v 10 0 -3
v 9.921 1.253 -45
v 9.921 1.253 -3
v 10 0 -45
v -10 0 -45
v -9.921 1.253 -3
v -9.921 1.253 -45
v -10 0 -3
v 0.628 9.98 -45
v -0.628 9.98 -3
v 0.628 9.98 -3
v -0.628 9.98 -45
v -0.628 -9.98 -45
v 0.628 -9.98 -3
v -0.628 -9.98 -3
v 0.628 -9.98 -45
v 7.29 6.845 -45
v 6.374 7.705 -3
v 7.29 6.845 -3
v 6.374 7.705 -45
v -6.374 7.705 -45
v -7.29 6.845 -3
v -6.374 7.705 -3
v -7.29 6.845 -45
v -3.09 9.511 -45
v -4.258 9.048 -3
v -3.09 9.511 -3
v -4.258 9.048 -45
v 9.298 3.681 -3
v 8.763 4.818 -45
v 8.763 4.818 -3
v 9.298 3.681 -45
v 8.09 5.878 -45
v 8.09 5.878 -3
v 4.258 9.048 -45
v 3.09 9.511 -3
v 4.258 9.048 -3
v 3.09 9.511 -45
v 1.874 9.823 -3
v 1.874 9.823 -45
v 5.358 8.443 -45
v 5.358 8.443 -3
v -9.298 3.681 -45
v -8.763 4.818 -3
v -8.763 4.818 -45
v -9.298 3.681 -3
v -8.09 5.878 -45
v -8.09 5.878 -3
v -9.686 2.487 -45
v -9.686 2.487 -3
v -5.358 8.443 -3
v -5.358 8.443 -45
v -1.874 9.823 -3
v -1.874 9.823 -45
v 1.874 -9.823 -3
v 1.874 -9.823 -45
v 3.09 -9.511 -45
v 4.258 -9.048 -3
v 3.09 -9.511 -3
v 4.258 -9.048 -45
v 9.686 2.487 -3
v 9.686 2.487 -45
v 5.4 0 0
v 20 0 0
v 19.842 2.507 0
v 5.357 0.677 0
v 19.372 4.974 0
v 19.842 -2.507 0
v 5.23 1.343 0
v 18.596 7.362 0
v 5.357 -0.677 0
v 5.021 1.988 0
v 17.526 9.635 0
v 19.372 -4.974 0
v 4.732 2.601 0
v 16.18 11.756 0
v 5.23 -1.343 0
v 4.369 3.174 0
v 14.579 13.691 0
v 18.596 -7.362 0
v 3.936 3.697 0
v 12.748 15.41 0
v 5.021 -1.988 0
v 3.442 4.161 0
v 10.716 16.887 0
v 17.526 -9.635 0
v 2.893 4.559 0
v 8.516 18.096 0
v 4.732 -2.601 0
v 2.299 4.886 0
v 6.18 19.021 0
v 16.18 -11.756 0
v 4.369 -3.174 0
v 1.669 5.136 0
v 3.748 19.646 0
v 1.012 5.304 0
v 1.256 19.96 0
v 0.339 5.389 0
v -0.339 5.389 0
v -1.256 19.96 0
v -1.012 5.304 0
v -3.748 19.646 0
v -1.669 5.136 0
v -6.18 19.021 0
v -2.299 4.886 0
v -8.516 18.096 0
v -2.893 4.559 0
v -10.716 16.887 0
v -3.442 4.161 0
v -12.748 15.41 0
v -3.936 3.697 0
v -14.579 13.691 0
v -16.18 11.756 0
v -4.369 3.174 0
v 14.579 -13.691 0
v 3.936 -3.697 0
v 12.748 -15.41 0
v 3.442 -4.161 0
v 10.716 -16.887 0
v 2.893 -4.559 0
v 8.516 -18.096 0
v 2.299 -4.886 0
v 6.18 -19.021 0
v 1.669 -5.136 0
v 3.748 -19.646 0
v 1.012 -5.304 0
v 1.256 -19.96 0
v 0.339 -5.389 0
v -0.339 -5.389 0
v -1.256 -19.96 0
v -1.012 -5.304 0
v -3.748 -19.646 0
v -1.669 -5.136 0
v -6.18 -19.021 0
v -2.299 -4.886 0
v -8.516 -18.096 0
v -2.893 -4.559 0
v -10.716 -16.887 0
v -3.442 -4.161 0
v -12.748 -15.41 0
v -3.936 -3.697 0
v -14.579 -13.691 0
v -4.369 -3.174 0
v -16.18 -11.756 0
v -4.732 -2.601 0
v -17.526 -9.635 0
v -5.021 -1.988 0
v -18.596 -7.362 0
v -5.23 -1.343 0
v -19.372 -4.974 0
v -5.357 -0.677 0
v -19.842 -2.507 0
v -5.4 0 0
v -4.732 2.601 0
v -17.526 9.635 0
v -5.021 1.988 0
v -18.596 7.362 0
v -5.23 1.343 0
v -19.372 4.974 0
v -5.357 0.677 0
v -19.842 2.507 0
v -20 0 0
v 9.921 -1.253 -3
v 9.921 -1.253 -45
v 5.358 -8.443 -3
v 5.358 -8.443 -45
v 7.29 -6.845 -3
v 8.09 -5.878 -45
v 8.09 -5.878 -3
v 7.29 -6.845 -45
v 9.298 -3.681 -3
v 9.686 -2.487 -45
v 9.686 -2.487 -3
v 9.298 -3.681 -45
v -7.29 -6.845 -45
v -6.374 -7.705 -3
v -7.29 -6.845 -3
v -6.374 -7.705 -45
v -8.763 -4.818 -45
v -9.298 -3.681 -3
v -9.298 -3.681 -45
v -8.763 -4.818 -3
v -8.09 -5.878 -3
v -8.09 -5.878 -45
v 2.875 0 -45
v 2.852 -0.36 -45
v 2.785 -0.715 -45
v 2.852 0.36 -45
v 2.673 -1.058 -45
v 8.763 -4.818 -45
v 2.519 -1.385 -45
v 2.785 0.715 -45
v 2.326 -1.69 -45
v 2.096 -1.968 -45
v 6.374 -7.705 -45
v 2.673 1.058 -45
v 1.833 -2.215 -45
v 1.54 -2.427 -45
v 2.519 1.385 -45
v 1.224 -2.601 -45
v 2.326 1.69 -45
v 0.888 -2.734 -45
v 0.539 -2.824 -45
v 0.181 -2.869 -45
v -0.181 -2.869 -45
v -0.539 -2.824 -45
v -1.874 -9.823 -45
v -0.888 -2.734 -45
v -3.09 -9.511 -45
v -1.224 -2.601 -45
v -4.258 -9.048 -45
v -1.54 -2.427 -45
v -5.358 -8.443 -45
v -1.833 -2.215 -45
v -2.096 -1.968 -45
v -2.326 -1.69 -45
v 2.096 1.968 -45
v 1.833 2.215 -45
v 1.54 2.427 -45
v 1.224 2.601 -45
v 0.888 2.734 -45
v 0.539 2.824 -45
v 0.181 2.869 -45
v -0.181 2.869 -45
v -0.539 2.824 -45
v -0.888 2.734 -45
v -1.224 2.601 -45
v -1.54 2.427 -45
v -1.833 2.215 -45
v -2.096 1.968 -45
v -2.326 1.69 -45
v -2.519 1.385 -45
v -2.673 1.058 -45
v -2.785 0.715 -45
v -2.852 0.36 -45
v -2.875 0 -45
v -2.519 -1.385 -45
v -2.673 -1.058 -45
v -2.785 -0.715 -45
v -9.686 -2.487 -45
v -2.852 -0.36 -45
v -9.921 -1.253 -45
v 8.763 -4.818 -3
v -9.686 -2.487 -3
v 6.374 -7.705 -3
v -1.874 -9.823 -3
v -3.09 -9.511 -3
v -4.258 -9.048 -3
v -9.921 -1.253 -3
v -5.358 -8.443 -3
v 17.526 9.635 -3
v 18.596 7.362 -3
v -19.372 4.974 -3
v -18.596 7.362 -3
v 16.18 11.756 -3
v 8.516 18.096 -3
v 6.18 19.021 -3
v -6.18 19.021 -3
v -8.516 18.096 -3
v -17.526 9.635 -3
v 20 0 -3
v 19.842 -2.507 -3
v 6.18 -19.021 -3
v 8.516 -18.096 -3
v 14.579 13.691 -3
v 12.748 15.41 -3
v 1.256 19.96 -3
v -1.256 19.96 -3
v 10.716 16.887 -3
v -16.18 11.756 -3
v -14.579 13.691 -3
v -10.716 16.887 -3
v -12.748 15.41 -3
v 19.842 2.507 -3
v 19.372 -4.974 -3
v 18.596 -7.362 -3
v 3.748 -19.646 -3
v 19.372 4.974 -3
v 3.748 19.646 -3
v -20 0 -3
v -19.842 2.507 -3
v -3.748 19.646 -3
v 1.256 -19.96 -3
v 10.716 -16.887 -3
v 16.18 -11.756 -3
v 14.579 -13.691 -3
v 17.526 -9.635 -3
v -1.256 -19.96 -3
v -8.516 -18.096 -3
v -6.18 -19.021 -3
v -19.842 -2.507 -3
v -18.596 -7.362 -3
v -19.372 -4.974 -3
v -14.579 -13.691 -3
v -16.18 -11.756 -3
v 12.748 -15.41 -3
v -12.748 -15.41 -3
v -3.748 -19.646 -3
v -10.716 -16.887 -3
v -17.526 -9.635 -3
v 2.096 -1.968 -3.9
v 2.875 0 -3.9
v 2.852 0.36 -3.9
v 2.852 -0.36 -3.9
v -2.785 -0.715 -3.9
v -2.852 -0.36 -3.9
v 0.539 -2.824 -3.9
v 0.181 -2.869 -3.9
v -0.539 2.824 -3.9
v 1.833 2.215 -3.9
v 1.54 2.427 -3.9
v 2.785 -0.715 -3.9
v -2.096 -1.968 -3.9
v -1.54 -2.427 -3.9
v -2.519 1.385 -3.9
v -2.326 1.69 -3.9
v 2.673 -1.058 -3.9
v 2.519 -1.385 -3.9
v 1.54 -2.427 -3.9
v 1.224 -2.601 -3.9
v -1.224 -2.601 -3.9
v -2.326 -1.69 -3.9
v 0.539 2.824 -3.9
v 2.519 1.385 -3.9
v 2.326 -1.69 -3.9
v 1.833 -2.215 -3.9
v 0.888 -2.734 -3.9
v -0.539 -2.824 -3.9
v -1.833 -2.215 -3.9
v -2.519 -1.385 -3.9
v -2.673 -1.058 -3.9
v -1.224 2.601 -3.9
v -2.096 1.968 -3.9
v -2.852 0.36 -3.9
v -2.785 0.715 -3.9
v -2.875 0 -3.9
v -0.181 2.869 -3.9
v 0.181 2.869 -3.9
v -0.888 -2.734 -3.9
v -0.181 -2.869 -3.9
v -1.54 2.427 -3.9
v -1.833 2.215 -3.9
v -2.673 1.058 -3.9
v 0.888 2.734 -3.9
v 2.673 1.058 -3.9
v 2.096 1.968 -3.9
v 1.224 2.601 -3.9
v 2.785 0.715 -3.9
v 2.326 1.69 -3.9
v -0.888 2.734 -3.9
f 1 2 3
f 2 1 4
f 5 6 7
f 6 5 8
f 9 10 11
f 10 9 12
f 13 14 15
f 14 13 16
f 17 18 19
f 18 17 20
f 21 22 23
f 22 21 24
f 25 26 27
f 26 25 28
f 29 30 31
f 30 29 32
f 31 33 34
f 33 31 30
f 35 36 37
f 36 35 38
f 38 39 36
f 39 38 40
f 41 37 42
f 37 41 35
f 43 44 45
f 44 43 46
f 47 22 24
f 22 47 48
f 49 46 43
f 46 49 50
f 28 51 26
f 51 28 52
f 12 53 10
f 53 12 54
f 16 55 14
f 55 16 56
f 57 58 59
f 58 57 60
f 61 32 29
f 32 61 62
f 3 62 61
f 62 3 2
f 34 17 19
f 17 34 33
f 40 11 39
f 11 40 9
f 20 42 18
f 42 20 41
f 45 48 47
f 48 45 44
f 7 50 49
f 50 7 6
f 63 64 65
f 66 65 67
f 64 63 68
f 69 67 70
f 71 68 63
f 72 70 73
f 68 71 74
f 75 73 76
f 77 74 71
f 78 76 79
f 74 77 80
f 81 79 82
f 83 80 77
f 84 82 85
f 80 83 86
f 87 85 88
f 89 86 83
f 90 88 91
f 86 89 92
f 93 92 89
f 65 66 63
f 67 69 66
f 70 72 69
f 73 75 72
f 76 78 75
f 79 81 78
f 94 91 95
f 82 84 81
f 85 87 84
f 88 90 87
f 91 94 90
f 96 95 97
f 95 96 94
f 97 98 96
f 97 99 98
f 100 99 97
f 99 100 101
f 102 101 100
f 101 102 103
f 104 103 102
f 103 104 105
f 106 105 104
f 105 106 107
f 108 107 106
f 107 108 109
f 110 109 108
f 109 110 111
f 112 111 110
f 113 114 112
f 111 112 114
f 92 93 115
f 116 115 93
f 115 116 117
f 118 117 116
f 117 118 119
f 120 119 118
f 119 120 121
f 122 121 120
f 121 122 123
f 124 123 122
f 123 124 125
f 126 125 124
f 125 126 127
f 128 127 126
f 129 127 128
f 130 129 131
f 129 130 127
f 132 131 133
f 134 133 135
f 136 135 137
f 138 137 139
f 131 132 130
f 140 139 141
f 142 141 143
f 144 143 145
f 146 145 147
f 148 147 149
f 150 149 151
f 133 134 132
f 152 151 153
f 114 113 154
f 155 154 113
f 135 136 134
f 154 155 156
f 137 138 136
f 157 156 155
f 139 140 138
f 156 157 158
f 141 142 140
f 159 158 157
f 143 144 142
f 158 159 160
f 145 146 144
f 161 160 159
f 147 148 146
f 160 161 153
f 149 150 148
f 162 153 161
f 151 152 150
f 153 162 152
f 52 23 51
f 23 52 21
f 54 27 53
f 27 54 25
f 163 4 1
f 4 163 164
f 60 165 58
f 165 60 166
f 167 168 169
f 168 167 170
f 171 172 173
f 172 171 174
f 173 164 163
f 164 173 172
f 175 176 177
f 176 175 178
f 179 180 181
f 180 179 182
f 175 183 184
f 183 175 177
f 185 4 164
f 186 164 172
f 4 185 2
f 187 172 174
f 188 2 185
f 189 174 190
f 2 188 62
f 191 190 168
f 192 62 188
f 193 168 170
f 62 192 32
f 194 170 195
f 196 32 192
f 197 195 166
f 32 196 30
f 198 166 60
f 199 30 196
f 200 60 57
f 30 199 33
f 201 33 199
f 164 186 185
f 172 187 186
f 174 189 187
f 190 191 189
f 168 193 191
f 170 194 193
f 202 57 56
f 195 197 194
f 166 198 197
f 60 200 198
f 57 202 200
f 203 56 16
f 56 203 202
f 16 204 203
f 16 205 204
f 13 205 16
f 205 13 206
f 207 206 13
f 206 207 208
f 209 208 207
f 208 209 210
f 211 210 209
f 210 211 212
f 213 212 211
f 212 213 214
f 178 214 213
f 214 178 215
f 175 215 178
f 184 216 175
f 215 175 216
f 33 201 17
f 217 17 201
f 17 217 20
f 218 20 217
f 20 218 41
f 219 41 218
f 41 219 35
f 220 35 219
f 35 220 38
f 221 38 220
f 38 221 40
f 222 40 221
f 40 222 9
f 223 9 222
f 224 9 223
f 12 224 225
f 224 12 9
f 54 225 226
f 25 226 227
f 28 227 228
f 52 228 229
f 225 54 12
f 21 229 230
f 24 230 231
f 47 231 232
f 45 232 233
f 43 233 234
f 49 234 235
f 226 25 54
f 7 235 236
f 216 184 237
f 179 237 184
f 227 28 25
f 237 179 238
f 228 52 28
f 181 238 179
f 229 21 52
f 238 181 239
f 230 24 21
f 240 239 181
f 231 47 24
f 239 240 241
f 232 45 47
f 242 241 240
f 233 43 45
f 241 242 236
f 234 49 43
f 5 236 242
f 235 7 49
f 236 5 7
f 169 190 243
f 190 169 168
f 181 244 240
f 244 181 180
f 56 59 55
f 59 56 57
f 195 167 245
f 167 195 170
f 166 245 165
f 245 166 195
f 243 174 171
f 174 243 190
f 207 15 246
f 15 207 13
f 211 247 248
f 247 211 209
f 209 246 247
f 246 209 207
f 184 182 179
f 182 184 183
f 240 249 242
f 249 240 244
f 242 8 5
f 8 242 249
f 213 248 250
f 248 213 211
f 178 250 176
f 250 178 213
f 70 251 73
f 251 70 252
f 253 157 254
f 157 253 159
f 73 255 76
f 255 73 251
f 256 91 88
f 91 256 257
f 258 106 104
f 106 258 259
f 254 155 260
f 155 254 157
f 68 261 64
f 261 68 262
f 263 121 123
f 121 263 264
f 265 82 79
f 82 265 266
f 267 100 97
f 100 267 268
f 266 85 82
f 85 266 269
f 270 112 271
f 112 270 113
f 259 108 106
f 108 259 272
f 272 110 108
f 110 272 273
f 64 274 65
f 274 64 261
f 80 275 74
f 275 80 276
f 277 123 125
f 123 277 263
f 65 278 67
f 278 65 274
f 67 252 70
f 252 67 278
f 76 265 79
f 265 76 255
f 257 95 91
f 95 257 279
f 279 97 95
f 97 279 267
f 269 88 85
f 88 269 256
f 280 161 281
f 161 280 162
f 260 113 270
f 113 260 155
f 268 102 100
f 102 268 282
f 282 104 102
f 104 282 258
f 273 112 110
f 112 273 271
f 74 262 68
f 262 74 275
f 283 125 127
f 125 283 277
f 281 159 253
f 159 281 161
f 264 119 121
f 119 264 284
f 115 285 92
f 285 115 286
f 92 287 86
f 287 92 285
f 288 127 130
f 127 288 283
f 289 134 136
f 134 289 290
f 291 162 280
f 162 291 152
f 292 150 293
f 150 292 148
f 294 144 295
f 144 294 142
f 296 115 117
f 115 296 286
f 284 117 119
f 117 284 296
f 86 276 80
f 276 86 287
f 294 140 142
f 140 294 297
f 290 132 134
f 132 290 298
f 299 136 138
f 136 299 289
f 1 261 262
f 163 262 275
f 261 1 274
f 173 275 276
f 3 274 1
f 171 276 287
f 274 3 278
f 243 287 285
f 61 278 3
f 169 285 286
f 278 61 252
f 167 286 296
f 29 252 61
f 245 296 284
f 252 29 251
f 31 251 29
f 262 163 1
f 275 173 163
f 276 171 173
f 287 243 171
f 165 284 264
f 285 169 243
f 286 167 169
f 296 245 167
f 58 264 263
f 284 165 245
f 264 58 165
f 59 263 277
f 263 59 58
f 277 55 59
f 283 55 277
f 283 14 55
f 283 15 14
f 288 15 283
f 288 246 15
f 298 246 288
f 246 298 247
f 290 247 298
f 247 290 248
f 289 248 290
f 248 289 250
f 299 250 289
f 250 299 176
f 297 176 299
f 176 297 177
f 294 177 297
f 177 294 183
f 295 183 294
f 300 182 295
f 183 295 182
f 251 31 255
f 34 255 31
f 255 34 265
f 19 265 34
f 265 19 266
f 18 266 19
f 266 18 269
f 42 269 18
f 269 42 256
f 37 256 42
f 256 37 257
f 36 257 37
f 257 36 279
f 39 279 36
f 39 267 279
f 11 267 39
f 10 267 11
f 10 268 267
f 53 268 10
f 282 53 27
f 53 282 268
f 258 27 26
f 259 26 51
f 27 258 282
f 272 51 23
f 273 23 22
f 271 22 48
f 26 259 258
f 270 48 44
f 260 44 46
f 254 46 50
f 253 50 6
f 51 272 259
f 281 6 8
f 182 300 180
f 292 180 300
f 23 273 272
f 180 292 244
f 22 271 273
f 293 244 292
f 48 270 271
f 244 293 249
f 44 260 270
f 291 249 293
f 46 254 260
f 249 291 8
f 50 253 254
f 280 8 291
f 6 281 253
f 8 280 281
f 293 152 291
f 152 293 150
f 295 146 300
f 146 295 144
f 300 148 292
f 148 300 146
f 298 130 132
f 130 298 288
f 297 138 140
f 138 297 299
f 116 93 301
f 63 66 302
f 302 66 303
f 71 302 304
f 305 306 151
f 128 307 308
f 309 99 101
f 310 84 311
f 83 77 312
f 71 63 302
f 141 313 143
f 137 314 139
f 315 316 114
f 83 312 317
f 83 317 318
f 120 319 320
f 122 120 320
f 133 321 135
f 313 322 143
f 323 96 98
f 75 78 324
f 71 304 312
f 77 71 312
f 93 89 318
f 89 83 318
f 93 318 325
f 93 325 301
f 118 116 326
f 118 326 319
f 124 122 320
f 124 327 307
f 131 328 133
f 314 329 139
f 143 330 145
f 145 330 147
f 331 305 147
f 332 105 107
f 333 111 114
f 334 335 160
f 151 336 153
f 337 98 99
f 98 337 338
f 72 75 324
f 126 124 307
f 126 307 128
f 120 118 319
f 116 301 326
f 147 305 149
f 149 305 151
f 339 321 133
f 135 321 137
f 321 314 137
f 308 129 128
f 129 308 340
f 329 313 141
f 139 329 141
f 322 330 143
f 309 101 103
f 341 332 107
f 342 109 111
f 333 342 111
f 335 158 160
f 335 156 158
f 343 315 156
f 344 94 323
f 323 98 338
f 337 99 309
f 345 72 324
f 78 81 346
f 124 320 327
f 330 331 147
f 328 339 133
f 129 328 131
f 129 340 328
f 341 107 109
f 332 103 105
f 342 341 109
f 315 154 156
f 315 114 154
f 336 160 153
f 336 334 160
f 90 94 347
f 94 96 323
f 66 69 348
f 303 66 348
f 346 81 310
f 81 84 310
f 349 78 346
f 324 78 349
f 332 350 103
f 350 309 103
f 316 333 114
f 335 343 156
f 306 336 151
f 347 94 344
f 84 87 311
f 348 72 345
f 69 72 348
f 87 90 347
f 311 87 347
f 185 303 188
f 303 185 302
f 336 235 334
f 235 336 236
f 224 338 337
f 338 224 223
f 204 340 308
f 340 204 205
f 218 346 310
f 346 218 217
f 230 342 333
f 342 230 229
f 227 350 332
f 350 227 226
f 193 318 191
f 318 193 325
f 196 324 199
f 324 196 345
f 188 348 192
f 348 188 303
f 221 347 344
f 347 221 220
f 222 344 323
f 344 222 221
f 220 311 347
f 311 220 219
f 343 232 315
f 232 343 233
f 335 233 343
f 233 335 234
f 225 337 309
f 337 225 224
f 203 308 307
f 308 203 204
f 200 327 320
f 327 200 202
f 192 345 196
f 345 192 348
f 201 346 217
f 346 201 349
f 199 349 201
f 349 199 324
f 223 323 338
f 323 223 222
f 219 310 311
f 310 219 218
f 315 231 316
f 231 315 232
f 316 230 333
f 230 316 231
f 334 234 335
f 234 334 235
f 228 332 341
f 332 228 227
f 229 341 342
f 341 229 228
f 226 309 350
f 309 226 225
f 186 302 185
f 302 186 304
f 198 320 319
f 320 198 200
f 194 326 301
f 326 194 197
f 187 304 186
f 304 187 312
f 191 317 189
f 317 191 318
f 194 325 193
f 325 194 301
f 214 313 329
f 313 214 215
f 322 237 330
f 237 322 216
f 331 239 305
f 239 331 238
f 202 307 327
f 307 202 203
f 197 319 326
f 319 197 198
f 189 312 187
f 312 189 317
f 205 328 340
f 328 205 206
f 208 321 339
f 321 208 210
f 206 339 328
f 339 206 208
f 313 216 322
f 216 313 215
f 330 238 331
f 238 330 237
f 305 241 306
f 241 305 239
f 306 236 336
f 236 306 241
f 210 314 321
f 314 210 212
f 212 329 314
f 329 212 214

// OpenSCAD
$fn = 50;


difference() {
	union() {
		translate(v = [0, 0, -45.0000000000]) {
			cylinder(h = 45, r = 10.0000000000);
		}
		translate(v = [0, 0, -3.0000000000]) {
			cylinder(h = 3, r = 20.0000000000);
		}
	}
	union() {
		translate(v = [0, 0, 0]) {
			rotate(a = [0, 0, 0]) {
				difference() {
					union() {
						#translate(v = [0, 0, -45.0000000000]) {
							cylinder(h = 45, r = 2.6000000000);
						}
						#translate(v = [0, 0, -3.9000000000]) {
							cylinder(h = 3.9000000000, r1 = 2.8750000000, r2 = 5.4000000000);
						}
						#translate(v = [0, 0, -45.0000000000]) {
							cylinder(h = 45, r = 2.8750000000);
						}
						#translate(v = [0, 0, -45.0000000000]) {
							cylinder(h = 45, r = 2.6000000000);
						}
					}
					union();
				}
			}
		}
	}
}
